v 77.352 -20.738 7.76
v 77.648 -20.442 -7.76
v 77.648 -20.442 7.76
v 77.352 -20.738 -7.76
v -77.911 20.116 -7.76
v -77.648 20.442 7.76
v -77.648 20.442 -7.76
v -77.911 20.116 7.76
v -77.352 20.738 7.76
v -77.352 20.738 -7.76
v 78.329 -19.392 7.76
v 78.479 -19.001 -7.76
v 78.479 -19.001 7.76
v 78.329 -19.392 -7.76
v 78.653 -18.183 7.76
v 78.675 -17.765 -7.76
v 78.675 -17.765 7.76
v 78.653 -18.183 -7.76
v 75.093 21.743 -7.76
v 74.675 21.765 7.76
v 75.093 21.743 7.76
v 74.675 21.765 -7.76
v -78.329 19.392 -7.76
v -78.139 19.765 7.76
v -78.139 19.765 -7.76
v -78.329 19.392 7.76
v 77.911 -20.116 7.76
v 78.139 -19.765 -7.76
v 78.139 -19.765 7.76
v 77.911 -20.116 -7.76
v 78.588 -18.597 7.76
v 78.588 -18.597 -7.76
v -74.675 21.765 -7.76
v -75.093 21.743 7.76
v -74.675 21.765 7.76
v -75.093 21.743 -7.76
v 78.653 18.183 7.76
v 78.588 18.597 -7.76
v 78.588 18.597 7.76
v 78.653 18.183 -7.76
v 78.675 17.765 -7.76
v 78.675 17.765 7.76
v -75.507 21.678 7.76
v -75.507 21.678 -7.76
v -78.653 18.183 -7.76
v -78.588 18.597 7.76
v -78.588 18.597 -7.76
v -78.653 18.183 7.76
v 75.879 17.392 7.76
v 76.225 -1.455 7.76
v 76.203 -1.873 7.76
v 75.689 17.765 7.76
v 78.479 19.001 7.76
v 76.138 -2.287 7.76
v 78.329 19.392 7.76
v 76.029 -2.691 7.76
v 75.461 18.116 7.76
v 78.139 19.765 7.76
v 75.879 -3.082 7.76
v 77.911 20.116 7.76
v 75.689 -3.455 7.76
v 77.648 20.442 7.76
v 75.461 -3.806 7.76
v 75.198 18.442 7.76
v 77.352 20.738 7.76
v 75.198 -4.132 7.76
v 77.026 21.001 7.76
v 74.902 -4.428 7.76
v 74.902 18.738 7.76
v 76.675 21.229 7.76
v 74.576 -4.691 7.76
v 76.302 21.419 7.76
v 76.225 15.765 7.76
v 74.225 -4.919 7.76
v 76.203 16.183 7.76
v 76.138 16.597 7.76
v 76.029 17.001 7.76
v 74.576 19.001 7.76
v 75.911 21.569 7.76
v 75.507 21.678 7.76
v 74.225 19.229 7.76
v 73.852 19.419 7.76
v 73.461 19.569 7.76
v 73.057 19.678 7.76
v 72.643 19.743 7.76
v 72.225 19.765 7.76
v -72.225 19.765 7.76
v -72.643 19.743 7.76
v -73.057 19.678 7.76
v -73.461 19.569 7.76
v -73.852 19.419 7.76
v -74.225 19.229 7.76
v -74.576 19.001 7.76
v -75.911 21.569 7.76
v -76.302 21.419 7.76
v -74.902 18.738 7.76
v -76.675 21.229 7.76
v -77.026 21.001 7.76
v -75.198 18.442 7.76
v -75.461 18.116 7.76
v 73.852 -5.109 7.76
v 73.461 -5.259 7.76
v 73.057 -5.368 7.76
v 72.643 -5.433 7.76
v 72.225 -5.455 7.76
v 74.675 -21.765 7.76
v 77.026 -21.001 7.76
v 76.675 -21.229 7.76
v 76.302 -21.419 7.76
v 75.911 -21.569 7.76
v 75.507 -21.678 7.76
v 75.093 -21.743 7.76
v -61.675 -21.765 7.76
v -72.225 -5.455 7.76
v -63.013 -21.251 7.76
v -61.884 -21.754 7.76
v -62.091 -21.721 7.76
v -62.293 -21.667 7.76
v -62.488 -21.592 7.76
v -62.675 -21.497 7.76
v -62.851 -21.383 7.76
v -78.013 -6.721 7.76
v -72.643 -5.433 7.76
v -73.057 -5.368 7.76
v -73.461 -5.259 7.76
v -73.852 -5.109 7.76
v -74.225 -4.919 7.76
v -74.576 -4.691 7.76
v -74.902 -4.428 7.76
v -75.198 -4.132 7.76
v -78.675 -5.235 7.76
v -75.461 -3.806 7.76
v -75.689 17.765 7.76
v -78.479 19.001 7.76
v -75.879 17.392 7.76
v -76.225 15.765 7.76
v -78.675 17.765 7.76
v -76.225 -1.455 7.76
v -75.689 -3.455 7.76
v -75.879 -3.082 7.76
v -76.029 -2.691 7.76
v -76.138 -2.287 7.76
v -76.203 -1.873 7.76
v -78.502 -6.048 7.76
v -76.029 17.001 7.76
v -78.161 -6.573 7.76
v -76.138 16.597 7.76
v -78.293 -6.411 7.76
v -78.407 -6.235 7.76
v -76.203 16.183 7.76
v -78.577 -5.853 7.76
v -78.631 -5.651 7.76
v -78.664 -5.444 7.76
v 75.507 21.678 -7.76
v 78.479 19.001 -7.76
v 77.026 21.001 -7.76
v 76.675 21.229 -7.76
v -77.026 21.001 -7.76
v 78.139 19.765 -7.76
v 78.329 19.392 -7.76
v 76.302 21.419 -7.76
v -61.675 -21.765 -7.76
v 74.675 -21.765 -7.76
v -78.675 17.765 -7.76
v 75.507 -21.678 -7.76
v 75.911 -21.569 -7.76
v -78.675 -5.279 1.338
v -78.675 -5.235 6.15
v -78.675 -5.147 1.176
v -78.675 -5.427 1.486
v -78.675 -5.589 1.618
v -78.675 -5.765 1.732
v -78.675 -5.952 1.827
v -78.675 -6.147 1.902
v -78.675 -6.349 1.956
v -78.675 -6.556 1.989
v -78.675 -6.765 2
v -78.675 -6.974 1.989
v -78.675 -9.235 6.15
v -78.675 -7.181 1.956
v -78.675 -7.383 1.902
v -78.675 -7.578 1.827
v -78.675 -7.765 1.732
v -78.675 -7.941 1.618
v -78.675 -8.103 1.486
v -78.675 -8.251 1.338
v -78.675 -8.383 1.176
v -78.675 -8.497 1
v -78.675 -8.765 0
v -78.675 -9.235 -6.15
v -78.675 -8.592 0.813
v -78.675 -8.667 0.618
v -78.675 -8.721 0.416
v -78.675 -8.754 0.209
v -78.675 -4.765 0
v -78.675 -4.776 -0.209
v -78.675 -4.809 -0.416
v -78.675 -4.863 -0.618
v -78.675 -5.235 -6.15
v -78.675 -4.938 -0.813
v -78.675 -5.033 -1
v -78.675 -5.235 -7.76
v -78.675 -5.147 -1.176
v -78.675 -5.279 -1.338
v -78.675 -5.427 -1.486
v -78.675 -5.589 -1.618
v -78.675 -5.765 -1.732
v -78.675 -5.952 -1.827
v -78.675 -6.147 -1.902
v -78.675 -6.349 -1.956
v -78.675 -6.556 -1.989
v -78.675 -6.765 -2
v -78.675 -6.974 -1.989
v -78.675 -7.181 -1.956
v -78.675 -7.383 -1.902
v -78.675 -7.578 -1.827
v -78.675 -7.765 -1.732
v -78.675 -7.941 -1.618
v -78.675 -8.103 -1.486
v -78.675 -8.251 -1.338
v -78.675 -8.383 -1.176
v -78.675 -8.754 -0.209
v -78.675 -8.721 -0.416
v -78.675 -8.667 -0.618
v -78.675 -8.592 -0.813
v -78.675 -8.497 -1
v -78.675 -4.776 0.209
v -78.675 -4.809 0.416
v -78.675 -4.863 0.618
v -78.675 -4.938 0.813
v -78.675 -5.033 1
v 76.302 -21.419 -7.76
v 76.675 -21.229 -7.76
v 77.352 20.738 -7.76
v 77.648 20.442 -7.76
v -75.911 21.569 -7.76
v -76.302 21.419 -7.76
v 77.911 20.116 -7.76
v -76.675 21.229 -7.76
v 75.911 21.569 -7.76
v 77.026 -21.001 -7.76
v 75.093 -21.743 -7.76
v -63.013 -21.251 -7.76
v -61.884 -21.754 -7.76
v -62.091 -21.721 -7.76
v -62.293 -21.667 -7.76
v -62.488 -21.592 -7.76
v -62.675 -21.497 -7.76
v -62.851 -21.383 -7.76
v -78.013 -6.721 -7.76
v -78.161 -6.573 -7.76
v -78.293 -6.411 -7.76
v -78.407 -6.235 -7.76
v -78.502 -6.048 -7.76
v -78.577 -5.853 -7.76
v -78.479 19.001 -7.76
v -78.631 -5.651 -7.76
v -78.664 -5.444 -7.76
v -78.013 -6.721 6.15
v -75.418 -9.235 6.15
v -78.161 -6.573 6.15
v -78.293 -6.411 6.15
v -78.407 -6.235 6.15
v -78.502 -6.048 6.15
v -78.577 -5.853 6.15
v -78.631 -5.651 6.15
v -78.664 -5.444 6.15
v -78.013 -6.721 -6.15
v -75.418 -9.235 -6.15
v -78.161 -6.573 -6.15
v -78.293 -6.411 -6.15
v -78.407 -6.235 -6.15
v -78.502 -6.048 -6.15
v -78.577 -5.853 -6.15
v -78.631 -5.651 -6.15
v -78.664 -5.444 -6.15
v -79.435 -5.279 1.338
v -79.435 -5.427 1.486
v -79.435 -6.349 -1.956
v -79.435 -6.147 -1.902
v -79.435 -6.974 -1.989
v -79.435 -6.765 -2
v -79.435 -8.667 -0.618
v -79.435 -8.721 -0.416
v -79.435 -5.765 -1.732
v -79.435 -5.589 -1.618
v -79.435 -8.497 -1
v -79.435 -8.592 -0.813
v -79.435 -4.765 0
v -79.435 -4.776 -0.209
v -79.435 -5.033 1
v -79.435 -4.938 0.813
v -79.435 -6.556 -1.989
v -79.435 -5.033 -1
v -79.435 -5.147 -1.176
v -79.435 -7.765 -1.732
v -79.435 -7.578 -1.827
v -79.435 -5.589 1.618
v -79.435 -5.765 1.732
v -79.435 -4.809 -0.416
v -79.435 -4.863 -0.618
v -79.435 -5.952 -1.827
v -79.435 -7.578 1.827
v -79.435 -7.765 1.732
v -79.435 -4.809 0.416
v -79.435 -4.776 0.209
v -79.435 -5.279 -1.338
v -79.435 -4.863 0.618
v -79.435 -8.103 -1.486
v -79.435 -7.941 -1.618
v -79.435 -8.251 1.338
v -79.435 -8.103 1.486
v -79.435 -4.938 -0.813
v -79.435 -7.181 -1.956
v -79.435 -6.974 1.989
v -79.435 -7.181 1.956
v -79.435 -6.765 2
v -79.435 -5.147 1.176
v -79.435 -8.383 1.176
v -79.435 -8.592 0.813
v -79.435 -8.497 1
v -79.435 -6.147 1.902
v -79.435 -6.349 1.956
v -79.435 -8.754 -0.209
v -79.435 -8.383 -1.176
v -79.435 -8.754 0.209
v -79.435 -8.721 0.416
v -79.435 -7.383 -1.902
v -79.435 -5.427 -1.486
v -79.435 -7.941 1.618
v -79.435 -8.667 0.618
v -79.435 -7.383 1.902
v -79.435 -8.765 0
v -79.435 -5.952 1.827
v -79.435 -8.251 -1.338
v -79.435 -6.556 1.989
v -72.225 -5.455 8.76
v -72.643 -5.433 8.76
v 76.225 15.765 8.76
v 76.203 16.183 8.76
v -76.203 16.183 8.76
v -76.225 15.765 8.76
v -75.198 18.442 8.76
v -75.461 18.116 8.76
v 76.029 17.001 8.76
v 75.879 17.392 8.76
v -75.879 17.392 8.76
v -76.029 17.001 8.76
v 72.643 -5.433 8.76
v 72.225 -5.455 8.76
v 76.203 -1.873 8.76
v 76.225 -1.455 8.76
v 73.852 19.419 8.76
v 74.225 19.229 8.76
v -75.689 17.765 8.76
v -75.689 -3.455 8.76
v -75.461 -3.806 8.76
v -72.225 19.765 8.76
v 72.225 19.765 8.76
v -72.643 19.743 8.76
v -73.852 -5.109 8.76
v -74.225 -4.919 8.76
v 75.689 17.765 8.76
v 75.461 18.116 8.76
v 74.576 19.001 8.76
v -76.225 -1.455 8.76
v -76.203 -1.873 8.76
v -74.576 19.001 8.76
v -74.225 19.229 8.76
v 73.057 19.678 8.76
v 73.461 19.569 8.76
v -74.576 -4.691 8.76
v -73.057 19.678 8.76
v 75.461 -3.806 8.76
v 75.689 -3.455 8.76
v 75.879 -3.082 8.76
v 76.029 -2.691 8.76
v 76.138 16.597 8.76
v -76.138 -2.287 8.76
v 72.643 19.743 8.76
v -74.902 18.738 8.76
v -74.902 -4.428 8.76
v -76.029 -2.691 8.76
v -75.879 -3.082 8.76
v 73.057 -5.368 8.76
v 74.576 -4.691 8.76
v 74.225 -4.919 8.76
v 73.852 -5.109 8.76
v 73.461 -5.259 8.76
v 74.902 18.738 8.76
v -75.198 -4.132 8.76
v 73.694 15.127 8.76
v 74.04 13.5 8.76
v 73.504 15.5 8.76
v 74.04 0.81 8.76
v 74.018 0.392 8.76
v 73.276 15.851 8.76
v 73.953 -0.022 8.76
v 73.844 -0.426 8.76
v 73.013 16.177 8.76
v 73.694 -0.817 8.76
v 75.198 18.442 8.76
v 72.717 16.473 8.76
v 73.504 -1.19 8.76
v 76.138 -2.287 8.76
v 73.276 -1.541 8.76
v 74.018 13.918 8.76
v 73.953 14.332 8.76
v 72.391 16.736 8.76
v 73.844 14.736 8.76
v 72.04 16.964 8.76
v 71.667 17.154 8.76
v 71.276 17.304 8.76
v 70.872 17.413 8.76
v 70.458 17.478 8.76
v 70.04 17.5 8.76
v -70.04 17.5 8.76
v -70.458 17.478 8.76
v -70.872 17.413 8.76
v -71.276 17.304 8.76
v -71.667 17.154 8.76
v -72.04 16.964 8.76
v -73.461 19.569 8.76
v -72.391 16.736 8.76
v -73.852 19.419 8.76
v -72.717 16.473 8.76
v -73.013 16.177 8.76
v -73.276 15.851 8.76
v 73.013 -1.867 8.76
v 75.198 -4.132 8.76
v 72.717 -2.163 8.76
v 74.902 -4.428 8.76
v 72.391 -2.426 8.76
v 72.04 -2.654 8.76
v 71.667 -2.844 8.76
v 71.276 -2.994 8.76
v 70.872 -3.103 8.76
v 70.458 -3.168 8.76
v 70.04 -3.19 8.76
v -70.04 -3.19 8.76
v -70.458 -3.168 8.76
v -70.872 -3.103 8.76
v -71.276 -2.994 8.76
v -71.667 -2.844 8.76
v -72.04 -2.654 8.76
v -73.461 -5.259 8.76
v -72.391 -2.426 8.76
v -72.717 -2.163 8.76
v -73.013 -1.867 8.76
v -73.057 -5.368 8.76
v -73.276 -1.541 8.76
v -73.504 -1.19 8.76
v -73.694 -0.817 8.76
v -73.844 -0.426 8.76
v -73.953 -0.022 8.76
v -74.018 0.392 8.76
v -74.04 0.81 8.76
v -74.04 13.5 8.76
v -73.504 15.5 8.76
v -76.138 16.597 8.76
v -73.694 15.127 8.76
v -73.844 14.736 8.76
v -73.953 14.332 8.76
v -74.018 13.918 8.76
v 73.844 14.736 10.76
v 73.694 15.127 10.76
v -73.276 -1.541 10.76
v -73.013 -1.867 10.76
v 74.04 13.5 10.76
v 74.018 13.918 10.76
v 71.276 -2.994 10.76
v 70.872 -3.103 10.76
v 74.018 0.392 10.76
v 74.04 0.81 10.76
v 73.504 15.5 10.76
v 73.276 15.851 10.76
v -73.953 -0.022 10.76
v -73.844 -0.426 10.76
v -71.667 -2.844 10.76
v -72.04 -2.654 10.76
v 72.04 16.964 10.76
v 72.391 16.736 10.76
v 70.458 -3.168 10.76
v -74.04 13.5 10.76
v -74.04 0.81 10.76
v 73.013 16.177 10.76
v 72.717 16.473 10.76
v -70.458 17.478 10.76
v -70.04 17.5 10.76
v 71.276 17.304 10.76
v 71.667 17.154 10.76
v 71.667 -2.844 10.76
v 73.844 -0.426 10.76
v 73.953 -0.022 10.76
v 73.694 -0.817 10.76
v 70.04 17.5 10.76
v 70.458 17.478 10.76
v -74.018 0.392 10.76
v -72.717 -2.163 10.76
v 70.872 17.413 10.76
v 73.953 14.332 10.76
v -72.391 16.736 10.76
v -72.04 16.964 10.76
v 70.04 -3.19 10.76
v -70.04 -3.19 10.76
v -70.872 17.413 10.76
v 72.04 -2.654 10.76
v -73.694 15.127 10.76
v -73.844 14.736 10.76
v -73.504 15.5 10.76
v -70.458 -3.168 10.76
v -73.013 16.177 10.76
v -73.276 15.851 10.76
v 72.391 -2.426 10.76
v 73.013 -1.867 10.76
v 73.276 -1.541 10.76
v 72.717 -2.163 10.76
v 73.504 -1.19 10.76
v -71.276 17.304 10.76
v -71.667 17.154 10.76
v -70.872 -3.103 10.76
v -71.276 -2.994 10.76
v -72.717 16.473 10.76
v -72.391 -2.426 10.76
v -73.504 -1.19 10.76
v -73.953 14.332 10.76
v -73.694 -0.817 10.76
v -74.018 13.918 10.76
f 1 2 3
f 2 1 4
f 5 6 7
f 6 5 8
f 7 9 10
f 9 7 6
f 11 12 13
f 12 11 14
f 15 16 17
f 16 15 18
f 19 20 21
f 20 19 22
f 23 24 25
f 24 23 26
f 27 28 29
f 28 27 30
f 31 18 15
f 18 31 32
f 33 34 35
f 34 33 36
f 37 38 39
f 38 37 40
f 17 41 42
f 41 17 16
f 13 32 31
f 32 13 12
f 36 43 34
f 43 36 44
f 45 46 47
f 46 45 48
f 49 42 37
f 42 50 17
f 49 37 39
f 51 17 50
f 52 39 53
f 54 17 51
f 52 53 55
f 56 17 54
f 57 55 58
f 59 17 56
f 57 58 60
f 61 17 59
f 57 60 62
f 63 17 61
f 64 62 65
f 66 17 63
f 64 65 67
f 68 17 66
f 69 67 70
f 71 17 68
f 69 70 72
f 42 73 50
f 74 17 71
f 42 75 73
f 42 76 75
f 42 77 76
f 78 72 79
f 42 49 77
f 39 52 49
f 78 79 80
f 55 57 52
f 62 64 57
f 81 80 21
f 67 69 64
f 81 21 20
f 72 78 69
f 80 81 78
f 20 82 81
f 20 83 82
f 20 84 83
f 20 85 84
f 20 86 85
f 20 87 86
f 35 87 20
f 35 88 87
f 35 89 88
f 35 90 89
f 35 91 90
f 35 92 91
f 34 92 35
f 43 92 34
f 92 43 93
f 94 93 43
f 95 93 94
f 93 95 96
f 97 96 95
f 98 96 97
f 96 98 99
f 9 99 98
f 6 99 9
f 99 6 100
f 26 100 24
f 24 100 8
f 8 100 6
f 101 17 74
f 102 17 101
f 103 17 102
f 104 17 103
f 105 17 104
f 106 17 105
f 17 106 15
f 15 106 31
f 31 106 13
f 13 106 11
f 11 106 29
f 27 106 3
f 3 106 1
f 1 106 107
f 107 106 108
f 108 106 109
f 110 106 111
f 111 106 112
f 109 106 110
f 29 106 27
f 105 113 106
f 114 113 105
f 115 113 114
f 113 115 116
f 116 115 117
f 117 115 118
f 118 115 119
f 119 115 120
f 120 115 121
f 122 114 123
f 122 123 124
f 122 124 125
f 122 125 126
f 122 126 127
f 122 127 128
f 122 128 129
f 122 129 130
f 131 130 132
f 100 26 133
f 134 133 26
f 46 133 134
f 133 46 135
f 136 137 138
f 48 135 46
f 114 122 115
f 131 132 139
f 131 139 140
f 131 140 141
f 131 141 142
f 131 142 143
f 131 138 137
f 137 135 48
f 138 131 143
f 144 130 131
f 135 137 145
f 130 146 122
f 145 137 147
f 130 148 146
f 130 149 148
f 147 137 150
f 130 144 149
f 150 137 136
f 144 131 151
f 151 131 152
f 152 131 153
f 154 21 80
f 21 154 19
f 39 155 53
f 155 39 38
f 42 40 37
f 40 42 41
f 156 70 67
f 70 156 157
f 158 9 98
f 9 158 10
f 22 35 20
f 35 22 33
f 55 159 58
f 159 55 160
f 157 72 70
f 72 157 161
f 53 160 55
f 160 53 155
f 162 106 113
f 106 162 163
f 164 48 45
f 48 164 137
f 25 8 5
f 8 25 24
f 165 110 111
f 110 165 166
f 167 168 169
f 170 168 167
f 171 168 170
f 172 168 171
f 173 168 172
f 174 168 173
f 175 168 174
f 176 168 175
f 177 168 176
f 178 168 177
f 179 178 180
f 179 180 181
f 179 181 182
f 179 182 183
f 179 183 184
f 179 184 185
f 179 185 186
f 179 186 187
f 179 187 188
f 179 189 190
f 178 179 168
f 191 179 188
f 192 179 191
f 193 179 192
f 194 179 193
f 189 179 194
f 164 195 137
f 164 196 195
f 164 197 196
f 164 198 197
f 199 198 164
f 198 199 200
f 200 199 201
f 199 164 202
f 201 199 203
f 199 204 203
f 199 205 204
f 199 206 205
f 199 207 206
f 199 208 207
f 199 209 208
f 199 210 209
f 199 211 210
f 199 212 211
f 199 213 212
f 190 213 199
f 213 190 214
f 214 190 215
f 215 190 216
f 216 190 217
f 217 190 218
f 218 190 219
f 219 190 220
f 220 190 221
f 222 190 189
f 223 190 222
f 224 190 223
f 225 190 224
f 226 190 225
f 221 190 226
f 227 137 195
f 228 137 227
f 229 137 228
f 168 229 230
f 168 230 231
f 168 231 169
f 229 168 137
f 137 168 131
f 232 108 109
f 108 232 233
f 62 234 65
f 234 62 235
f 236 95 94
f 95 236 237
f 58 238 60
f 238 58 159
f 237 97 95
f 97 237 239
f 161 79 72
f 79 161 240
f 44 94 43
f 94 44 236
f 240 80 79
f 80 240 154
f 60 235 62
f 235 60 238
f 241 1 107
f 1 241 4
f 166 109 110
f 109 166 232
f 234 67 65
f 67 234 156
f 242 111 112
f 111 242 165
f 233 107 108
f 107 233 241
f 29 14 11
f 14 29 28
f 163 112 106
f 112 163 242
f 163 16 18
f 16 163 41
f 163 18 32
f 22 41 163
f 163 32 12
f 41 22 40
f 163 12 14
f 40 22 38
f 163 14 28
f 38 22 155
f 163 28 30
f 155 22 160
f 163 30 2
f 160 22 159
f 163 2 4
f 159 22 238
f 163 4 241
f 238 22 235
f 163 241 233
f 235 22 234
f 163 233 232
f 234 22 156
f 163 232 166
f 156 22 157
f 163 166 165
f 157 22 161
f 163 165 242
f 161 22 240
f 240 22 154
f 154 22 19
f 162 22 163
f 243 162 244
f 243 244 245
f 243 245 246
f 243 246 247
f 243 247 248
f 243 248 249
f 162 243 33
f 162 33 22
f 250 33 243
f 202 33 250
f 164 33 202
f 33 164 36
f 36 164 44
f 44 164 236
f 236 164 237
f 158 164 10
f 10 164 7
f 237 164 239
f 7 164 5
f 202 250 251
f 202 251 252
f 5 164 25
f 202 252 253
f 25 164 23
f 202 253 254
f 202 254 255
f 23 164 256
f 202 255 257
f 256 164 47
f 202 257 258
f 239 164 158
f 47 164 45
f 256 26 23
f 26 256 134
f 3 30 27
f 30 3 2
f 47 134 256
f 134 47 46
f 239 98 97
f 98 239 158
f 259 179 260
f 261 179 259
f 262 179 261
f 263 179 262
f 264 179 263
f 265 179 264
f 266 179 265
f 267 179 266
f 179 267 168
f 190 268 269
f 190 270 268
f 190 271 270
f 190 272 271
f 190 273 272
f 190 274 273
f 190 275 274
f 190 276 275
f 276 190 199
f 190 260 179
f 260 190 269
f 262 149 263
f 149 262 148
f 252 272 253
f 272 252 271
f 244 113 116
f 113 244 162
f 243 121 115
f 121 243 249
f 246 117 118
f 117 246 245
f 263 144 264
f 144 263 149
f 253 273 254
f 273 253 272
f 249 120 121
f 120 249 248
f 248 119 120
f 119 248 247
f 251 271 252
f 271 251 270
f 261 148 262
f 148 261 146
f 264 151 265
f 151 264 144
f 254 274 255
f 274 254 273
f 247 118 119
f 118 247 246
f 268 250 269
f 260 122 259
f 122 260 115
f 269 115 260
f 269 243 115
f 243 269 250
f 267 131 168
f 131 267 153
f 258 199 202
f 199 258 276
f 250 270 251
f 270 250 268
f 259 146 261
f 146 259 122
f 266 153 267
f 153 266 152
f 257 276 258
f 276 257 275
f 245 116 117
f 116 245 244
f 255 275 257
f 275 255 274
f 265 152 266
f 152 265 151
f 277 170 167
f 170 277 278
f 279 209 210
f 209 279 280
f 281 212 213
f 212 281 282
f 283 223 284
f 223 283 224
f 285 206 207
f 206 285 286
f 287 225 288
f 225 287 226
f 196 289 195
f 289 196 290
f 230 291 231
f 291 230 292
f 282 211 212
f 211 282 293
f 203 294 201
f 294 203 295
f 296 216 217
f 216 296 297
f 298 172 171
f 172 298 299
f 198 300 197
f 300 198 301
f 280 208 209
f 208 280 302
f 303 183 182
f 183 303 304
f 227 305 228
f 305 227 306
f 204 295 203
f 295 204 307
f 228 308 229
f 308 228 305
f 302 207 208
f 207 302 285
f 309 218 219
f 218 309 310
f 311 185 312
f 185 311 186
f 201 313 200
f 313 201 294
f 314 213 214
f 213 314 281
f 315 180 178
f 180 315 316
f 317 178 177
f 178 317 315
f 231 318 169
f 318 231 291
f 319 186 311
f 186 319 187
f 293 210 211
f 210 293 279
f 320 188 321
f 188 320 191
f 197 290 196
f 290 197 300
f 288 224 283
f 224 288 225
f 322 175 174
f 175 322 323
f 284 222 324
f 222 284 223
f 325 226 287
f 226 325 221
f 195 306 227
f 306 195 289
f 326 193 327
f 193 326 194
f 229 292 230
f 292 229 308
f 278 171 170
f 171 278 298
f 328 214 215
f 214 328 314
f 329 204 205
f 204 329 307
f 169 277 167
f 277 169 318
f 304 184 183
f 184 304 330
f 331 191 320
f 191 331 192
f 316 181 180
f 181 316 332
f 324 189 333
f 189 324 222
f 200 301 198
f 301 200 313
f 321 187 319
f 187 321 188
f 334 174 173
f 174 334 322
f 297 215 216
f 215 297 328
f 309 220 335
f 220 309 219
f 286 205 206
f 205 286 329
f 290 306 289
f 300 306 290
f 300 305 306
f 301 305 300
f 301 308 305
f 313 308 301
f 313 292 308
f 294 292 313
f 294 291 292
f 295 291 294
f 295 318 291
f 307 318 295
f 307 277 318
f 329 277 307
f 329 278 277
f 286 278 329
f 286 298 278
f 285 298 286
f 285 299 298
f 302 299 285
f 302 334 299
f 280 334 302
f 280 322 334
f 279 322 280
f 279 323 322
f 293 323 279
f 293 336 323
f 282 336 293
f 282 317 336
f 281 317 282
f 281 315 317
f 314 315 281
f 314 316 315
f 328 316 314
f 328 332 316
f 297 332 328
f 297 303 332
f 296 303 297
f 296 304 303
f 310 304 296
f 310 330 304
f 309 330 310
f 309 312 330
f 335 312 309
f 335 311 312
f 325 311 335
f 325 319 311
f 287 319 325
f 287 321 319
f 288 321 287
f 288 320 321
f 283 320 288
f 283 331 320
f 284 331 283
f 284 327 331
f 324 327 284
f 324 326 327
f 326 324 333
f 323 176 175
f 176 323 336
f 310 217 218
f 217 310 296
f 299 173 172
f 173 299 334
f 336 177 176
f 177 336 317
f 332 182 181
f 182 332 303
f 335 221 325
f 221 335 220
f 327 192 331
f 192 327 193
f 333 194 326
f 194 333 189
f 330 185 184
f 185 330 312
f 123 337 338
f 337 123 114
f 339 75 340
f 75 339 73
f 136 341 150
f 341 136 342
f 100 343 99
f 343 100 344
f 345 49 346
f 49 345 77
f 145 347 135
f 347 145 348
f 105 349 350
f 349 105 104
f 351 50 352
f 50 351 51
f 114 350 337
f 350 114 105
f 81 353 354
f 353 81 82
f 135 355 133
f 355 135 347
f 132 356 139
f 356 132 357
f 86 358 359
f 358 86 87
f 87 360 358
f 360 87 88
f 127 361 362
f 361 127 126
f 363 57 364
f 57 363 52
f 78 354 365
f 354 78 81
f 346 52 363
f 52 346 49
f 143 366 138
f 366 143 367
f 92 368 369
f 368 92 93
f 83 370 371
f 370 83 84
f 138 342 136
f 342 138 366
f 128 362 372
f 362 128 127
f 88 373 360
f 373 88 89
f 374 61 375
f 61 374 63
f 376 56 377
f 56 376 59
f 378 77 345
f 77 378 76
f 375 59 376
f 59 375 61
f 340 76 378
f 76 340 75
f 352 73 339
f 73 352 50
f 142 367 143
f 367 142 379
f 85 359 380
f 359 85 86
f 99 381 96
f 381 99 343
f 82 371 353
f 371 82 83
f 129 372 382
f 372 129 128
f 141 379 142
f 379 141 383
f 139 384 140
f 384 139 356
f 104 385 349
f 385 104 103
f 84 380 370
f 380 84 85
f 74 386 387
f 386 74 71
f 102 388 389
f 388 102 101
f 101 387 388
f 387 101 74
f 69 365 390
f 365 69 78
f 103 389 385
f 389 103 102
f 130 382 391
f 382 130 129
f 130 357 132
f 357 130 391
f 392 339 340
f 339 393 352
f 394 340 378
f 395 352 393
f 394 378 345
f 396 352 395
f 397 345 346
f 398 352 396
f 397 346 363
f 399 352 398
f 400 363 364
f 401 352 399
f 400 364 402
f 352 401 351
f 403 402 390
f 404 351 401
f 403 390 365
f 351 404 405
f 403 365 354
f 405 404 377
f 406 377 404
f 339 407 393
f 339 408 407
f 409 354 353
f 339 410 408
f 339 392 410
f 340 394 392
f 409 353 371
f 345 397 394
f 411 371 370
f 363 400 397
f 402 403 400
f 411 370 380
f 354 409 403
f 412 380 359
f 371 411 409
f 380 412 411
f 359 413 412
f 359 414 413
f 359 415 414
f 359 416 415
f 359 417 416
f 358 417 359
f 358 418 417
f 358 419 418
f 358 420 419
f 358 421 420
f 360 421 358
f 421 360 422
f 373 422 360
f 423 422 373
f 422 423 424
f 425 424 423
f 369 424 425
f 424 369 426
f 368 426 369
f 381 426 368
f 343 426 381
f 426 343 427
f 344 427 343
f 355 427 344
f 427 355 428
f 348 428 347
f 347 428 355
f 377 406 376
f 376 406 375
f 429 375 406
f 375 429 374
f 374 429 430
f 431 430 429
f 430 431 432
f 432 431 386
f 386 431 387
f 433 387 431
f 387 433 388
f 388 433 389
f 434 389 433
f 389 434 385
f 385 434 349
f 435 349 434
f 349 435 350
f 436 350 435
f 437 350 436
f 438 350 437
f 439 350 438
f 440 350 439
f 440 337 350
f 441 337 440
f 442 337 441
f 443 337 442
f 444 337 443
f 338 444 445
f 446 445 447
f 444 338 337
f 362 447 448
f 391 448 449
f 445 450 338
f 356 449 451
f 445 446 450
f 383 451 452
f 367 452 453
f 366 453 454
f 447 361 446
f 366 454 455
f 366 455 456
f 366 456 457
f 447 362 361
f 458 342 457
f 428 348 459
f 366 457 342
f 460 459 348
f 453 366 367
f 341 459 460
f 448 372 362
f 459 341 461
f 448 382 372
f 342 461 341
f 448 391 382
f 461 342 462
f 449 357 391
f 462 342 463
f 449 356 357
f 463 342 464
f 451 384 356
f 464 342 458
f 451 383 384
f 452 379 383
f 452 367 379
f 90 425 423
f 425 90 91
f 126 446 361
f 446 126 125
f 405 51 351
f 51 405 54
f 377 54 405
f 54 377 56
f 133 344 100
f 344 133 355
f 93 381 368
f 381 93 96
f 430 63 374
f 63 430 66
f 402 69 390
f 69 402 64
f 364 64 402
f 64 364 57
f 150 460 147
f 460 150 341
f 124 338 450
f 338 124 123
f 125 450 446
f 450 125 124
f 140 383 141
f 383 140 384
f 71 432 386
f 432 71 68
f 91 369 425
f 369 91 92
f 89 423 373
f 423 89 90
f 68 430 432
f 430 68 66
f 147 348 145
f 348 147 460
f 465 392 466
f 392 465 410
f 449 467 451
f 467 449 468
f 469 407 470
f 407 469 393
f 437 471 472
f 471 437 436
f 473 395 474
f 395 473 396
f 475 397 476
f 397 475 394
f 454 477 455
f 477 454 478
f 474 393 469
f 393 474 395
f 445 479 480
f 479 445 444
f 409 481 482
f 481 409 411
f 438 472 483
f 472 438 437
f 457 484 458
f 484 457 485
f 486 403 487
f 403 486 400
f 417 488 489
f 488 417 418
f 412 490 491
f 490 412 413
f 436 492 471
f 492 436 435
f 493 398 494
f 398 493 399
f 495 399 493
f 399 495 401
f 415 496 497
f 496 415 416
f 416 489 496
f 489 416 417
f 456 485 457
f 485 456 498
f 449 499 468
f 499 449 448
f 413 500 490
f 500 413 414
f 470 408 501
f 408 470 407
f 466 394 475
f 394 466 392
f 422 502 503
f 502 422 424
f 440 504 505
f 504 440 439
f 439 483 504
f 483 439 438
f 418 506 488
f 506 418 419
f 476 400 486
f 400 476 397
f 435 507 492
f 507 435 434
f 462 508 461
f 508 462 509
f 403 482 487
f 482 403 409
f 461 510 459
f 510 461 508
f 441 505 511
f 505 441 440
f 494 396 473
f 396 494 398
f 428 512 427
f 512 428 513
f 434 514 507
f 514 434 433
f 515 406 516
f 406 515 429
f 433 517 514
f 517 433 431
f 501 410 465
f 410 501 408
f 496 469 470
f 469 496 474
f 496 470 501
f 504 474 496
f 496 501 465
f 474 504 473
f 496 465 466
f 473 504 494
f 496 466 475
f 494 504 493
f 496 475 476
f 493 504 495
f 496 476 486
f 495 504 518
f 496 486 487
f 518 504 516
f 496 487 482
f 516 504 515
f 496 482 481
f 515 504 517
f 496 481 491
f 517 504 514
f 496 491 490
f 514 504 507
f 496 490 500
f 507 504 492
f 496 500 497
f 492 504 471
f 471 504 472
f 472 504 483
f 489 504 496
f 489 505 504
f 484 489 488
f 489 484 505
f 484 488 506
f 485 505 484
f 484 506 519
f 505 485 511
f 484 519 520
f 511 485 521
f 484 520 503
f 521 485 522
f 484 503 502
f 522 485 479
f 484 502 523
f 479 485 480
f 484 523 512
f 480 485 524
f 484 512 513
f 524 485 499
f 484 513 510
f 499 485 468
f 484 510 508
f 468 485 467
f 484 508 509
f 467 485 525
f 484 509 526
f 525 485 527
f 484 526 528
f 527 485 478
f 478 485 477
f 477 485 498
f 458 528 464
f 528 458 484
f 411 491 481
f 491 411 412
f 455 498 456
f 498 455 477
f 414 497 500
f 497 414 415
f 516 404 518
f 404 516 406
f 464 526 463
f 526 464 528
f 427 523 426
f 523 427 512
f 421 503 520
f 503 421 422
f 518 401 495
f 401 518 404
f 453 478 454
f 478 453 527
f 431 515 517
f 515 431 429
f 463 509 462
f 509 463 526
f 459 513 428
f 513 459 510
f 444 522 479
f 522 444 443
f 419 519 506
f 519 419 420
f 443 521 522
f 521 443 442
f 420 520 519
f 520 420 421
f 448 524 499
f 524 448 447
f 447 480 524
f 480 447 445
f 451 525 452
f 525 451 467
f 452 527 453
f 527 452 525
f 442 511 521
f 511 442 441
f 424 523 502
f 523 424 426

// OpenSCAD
// file: ../../scadLib/library.scad
////////////////////////////////////////////////////////////////////////////////////////////////////
module plate4Point(x,y,z,d){
	hull(){
		color("green") translate([(x/2)-(d/2) ,(y/2) -(d/2),0]) cylinder(h=z, d=d, center=true);
		color("blue")  translate([(x/2)-(d/2) ,-(y/2)+(d/2),0]) cylinder(h=z, d=d, center=true);
		color("red")   translate([-(x/2)+(d/2),(y/2) -(d/2),0]) cylinder(h=z, d=d, center=true);
		color("grey")  translate([-(x/2)+(d/2),-(y/2)+(d/2),0]) cylinder(h=z, d=d, center=true);
	}
}
////////////////////////////////////////////////////////////////////////////////////////////////////
module plate2Point(x,z,d){
	hull(){
		color("green") translate([(x/2) -(d/2),0 ,0]) cylinder(h=z, d=d, center=true);
		color("blue")  translate([-(x/2)+(d/2),0 ,0]) cylinder(h=z, d=d, center=true);
	}
}
////////////////////////////////////////////////////////////////////////////////////////////////////
module triagleSphere(iX, iY, iZ, iD){
	
	halfD = iD/2;
	hull(){
		color("red")		translate([-halfD   , (iY/2)-halfD, halfD]) sphere(d=iD);	
		color("grey")		translate([-iX+halfD, (iY/2)-halfD, halfD]) sphere(d=iD);
		color("green")	translate([-halfD   , (iY/2)-halfD, iZ-halfD]) sphere(d=iD);

		color("red")		translate([-halfD   , -(iY/2)+halfD, halfD]) sphere(d=iD);
		color("grey")		translate([-iX+halfD, -(iY/2)+halfD, halfD]) sphere(d=iD);
		color("green")	translate([-halfD   , -(iY/2)+halfD, iZ-halfD]) sphere(d=iD);
	}
}
////////////////////////////////////////////////////////////////////////////////////////////////////
module cubeSphere(iX, iYm, iZ, iD){

	edgeDiamitor = iD;
	
	hull(){
		for(a=[[1,1,1],[-1,1,1],[1,-1,1],[-1,-1,1],[1,1,-1],[-1,1,-1],[1,-1,-1],[-1,-1,-1]]){
			translate([
				a[0]*((iX/2) -(edgeDiamitor/2)), 
				a[1]*((iYm/2)-(edgeDiamitor/2)), 
				a[2]*((iZ/2) -(edgeDiamitor/2))]) sphere(d=edgeDiamitor);
		}
	}
} 
////////////////////////////////////////////////////////////////////////////////////////////////////
module mText(l, letter_size = 10, letter_height = 4) {
// Use linear_extrude() to make the letters 3D objects as they
// are only 2D shapes when only using text()
	font = "Bitstream Vera Sans:style=Bold" ;
	linear_extrude(height = letter_height) {
		text(l, size = letter_size, font = font, halign = "center", valign = "center", $fn = 16);
	}
}
module roundedTrapezoid(x1=1, y1=1,x2=1, y2=1, z1=1, d1=6){
  hull(){
  // top Right
    translate([-x1,y1,0])
      cylinder(h=z1,d=d1,center=true);
  // Top Left
    translate([-x1,-y1,0])
      cylinder(h=z1,d=d1,center=true);
  // Bottom Right
    translate([-x2,y2,0])
      cylinder(h=z1,d=d1,center=true);
  // Bottom Left
    translate([-x2,-y2,0])
      cylinder(h=z1,d=d1,center=true);
  }
}
// main file
$fn=60;

use<../../scadLib/library.scad>;

bodyWidth=157.35;
bodyDepth=43.53;
bodyHeigth=15.52;

topBumpMidFromBodyEdge=2;
topBumpMidWidth=152.45;
topBumpMidDepth=25.22;
topBumpMidHeigth=1;

topBumpTopFromMidEdge=2;
topBumpTopWidth=148.08;
topBumpTopDepth=20.69;
topBumpTopHeigth=3;

//botBumpWidth=; // from edge
//botBumpDepth=;
//botBumpHeigth=;

squareCornerX=(bodyWidth/2);
squareCornerY=31;
squareCornerZ=12.30;

hull(){
  translate([
    (4/2)-(bodyWidth/2), 
    ((-4/2)+(bodyDepth/2))-15, // Top
    0]) color("GreenYellow") rotate([0, 0, 90])
    cylinder(h=bodyHeigth,d=4,center=true);
  translate([
    (4/2)-(bodyWidth/2), 
    ((-4/2)+(bodyDepth/2))-25, // Mid ********
    0]) color("Aqua") rotate([0, 0, 90])
    cylinder(h=bodyHeigth,d=4,center=true);
  translate([
    ((4/2)-(bodyWidth/2))+15, // bottom *********
    ((4/2)-(bodyDepth/2)), 
    0]) color("Fuchsia") rotate([0, 0, 90])
    cylinder(h=bodyHeigth,d=4,center=true);
translate([
    ((4/2)-(bodyWidth/2))+20, // bottom right
    ((4/2)-(bodyDepth/2)), 
    0]) color("DarkGreen") rotate([0, 0, 90])
    cylinder(h=bodyHeigth,d=4,center=true);
}


// Main body
difference(){
plate4Point(bodyWidth,bodyDepth,bodyHeigth,8);
// Cut corner out
  translate([4, 4, 0])
  translate([
    -bodyWidth/2, 
    -bodyDepth/2, 
    0]) color("blue")
    rotate([0, 0, 45])
    cube([14 ,40, bodyHeigth+2],center=true);
}
translate([
    ((4/2)-(bodyWidth/2))+7, // bottom right
    ((4/2)-(bodyDepth/2))+13, 
    0]) color("DarkGreen") rotate([0, 90, 0])
    cylinder(h=bodyHeigth+4,d=4,center=true);
// Square Corner
difference(){
  translate([
    (squareCornerX/2)-(bodyWidth/2), 
    (-squareCornerY/2)+(bodyDepth/2), 
    0]) color("orange")
    cube([squareCornerX ,squareCornerY, squareCornerZ],center=true);

  translate([
    -bodyWidth/2, 
    bodyDepth/2, 
    0]) color("blue")
    cube([10 ,20, squareCornerZ+2],center=true);
}

// Mid Bump
translate([0, ((bodyDepth/2)-(topBumpMidDepth/2))-topBumpMidFromBodyEdge, (bodyHeigth/2)+(topBumpMidHeigth/2)]) color("green")
plate4Point(topBumpMidWidth,topBumpMidDepth,topBumpMidHeigth,8);

// Mid Bump
translate([0, ((bodyDepth/2)-(topBumpMidDepth/2))-topBumpTopFromMidEdge, (bodyHeigth/2)+(topBumpTopHeigth/2)]) color("red")
plate4Point(topBumpTopWidth,topBumpTopDepth,topBumpTopHeigth,8);
